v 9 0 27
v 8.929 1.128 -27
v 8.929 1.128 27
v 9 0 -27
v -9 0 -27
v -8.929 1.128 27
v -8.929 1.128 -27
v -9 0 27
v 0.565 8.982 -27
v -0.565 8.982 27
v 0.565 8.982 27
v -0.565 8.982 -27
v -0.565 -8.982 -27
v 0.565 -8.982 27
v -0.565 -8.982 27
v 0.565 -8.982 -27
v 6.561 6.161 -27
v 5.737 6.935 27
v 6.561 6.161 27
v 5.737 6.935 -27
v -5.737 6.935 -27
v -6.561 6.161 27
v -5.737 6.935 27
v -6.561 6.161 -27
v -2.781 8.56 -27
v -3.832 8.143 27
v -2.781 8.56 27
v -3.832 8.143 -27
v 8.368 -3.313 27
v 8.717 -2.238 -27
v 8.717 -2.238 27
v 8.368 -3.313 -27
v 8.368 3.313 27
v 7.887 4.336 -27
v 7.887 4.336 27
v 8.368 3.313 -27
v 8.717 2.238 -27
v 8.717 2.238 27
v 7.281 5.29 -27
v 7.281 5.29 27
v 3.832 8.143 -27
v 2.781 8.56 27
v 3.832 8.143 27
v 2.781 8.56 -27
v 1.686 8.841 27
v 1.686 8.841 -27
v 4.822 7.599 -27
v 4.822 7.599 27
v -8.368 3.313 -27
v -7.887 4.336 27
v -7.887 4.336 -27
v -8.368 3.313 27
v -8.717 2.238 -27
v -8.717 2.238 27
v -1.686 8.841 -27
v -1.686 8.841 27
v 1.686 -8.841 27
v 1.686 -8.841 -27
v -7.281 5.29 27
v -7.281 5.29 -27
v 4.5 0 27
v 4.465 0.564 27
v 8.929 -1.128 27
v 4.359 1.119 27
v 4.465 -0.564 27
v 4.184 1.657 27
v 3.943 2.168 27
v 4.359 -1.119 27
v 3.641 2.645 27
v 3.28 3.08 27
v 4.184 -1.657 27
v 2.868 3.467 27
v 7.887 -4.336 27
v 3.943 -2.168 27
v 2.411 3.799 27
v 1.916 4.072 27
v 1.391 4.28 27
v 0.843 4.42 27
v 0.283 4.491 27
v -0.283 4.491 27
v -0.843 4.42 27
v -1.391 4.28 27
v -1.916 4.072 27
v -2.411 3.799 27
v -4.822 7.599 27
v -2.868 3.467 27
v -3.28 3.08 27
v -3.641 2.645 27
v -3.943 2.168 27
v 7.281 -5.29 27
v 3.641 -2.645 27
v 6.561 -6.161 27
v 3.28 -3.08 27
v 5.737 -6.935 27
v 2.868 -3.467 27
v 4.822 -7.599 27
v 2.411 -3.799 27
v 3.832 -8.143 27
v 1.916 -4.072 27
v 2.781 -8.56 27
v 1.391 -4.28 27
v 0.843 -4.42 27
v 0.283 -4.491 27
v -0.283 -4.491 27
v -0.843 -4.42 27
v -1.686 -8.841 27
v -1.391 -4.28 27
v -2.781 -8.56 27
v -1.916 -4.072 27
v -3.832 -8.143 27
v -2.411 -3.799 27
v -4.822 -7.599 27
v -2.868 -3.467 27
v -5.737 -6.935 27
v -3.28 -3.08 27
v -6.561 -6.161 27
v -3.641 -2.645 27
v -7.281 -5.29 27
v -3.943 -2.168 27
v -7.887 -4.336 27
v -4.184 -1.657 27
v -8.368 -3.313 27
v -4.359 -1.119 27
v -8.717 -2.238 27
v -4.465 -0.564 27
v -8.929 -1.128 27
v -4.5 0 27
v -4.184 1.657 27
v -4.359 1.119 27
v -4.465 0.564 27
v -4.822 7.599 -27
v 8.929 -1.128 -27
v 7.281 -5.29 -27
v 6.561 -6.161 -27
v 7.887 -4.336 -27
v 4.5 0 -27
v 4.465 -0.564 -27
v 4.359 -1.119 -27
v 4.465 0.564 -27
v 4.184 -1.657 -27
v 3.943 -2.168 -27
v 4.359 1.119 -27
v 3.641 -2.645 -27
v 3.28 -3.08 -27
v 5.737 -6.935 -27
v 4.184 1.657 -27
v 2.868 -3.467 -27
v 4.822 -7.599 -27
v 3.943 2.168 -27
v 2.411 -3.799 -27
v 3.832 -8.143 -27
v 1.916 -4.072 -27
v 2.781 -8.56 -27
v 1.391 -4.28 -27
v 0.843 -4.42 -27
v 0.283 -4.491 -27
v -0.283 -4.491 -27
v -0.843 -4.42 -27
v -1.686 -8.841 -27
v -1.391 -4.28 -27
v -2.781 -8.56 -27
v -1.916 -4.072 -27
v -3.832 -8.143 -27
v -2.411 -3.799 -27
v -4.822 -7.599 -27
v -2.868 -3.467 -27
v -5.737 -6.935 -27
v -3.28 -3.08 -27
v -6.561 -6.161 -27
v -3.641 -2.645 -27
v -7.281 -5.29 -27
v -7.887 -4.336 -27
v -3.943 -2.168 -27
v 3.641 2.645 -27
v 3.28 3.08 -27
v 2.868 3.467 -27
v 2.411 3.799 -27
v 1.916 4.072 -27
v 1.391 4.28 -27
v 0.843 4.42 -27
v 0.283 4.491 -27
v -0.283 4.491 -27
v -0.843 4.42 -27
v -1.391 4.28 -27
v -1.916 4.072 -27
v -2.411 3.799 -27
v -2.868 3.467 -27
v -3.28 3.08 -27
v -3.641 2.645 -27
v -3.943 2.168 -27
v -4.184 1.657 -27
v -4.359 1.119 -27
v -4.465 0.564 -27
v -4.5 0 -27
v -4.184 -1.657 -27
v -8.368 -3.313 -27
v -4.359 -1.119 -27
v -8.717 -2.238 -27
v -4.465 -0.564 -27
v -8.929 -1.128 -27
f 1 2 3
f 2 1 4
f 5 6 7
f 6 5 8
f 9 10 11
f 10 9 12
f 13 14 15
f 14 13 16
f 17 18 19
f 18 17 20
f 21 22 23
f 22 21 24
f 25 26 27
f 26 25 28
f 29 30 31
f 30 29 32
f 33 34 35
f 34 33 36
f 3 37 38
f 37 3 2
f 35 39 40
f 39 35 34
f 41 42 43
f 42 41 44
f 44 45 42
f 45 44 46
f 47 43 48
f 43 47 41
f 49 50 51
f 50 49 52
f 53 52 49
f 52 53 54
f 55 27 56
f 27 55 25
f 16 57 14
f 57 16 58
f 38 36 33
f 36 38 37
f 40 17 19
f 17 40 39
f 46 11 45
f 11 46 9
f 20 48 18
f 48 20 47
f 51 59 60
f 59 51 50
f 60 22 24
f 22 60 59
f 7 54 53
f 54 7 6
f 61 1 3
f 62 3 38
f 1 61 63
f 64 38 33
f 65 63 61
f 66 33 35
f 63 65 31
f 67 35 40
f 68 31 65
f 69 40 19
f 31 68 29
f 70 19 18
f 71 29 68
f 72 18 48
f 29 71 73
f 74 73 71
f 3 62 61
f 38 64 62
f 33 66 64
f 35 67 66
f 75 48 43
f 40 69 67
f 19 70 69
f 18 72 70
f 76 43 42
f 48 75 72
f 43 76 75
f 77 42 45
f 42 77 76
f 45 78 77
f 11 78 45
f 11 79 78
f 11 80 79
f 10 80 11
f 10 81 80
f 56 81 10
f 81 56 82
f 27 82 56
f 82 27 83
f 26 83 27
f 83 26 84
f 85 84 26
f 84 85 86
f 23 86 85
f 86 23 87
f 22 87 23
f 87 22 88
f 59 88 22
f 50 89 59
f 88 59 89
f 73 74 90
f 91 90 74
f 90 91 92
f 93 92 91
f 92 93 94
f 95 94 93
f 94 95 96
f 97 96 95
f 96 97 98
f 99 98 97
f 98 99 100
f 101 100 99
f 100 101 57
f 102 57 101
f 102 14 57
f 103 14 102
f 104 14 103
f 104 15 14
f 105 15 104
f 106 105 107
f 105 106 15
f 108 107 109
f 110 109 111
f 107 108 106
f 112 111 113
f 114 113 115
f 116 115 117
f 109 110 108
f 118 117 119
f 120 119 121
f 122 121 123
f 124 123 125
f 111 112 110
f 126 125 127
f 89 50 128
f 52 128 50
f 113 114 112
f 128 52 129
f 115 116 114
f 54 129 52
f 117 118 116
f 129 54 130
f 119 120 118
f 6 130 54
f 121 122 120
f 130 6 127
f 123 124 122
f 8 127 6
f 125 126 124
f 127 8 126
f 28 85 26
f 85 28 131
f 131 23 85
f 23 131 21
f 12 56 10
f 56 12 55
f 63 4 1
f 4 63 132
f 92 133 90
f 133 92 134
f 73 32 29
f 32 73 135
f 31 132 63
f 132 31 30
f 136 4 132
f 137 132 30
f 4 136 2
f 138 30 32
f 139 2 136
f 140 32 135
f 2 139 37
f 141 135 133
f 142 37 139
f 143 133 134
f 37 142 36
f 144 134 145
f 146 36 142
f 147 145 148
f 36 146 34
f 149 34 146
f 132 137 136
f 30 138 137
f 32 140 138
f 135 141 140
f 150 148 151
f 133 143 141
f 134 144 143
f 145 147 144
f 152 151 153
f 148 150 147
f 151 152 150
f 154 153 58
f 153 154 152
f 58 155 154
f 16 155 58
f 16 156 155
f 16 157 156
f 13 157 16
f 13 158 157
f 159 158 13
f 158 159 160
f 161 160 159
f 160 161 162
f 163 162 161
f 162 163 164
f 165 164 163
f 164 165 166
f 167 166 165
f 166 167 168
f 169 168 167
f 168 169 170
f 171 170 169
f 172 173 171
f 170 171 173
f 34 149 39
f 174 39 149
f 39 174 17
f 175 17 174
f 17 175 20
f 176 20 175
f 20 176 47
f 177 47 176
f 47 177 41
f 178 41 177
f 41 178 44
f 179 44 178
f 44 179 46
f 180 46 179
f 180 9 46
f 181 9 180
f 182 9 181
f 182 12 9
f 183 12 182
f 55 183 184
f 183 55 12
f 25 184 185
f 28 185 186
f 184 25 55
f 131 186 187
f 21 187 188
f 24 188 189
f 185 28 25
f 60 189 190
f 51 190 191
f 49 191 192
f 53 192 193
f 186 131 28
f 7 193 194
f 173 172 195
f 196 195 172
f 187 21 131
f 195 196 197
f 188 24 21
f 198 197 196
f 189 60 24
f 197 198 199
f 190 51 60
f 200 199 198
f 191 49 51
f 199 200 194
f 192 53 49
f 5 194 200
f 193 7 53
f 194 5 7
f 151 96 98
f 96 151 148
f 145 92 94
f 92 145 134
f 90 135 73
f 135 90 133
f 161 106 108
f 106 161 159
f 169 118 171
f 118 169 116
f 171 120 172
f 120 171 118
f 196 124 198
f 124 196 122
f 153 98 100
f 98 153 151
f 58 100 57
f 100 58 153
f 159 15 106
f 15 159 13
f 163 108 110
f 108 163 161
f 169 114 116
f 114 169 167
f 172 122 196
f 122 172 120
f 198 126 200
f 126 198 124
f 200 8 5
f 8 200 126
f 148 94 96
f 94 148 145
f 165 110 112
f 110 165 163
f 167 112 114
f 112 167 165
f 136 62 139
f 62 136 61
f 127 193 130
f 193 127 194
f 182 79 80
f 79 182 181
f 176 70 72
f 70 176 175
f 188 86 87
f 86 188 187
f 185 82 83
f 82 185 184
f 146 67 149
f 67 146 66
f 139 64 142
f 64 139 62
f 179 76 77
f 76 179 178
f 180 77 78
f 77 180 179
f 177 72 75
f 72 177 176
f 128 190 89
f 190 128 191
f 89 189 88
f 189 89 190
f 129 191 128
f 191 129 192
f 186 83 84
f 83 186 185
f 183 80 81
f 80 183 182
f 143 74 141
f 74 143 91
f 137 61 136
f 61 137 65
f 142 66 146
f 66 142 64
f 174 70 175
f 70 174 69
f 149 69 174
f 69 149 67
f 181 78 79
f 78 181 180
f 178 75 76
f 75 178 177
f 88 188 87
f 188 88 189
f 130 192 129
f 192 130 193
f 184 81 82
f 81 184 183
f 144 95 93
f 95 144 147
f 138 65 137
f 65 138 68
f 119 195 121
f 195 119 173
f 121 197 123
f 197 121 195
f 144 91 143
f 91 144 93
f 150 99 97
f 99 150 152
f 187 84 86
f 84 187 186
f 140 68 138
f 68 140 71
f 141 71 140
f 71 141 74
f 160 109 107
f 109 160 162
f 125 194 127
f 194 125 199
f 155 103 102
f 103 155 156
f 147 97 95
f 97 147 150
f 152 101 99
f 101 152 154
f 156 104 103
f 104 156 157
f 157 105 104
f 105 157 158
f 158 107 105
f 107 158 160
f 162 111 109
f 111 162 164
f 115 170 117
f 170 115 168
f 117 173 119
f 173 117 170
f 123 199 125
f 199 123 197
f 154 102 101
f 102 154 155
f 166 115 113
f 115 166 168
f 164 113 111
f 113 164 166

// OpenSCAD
$fn = 50;


difference() {
	union() {
		translate(v = [0, 0, -27.0000000000]) {
			cylinder(h = 54, r = 9.0000000000);
		}
	}
	union() {
		translate(v = [0, 0, -100.0000000000]) {
			cylinder(h = 200, r = 4.5000000000);
		}
	}
}
